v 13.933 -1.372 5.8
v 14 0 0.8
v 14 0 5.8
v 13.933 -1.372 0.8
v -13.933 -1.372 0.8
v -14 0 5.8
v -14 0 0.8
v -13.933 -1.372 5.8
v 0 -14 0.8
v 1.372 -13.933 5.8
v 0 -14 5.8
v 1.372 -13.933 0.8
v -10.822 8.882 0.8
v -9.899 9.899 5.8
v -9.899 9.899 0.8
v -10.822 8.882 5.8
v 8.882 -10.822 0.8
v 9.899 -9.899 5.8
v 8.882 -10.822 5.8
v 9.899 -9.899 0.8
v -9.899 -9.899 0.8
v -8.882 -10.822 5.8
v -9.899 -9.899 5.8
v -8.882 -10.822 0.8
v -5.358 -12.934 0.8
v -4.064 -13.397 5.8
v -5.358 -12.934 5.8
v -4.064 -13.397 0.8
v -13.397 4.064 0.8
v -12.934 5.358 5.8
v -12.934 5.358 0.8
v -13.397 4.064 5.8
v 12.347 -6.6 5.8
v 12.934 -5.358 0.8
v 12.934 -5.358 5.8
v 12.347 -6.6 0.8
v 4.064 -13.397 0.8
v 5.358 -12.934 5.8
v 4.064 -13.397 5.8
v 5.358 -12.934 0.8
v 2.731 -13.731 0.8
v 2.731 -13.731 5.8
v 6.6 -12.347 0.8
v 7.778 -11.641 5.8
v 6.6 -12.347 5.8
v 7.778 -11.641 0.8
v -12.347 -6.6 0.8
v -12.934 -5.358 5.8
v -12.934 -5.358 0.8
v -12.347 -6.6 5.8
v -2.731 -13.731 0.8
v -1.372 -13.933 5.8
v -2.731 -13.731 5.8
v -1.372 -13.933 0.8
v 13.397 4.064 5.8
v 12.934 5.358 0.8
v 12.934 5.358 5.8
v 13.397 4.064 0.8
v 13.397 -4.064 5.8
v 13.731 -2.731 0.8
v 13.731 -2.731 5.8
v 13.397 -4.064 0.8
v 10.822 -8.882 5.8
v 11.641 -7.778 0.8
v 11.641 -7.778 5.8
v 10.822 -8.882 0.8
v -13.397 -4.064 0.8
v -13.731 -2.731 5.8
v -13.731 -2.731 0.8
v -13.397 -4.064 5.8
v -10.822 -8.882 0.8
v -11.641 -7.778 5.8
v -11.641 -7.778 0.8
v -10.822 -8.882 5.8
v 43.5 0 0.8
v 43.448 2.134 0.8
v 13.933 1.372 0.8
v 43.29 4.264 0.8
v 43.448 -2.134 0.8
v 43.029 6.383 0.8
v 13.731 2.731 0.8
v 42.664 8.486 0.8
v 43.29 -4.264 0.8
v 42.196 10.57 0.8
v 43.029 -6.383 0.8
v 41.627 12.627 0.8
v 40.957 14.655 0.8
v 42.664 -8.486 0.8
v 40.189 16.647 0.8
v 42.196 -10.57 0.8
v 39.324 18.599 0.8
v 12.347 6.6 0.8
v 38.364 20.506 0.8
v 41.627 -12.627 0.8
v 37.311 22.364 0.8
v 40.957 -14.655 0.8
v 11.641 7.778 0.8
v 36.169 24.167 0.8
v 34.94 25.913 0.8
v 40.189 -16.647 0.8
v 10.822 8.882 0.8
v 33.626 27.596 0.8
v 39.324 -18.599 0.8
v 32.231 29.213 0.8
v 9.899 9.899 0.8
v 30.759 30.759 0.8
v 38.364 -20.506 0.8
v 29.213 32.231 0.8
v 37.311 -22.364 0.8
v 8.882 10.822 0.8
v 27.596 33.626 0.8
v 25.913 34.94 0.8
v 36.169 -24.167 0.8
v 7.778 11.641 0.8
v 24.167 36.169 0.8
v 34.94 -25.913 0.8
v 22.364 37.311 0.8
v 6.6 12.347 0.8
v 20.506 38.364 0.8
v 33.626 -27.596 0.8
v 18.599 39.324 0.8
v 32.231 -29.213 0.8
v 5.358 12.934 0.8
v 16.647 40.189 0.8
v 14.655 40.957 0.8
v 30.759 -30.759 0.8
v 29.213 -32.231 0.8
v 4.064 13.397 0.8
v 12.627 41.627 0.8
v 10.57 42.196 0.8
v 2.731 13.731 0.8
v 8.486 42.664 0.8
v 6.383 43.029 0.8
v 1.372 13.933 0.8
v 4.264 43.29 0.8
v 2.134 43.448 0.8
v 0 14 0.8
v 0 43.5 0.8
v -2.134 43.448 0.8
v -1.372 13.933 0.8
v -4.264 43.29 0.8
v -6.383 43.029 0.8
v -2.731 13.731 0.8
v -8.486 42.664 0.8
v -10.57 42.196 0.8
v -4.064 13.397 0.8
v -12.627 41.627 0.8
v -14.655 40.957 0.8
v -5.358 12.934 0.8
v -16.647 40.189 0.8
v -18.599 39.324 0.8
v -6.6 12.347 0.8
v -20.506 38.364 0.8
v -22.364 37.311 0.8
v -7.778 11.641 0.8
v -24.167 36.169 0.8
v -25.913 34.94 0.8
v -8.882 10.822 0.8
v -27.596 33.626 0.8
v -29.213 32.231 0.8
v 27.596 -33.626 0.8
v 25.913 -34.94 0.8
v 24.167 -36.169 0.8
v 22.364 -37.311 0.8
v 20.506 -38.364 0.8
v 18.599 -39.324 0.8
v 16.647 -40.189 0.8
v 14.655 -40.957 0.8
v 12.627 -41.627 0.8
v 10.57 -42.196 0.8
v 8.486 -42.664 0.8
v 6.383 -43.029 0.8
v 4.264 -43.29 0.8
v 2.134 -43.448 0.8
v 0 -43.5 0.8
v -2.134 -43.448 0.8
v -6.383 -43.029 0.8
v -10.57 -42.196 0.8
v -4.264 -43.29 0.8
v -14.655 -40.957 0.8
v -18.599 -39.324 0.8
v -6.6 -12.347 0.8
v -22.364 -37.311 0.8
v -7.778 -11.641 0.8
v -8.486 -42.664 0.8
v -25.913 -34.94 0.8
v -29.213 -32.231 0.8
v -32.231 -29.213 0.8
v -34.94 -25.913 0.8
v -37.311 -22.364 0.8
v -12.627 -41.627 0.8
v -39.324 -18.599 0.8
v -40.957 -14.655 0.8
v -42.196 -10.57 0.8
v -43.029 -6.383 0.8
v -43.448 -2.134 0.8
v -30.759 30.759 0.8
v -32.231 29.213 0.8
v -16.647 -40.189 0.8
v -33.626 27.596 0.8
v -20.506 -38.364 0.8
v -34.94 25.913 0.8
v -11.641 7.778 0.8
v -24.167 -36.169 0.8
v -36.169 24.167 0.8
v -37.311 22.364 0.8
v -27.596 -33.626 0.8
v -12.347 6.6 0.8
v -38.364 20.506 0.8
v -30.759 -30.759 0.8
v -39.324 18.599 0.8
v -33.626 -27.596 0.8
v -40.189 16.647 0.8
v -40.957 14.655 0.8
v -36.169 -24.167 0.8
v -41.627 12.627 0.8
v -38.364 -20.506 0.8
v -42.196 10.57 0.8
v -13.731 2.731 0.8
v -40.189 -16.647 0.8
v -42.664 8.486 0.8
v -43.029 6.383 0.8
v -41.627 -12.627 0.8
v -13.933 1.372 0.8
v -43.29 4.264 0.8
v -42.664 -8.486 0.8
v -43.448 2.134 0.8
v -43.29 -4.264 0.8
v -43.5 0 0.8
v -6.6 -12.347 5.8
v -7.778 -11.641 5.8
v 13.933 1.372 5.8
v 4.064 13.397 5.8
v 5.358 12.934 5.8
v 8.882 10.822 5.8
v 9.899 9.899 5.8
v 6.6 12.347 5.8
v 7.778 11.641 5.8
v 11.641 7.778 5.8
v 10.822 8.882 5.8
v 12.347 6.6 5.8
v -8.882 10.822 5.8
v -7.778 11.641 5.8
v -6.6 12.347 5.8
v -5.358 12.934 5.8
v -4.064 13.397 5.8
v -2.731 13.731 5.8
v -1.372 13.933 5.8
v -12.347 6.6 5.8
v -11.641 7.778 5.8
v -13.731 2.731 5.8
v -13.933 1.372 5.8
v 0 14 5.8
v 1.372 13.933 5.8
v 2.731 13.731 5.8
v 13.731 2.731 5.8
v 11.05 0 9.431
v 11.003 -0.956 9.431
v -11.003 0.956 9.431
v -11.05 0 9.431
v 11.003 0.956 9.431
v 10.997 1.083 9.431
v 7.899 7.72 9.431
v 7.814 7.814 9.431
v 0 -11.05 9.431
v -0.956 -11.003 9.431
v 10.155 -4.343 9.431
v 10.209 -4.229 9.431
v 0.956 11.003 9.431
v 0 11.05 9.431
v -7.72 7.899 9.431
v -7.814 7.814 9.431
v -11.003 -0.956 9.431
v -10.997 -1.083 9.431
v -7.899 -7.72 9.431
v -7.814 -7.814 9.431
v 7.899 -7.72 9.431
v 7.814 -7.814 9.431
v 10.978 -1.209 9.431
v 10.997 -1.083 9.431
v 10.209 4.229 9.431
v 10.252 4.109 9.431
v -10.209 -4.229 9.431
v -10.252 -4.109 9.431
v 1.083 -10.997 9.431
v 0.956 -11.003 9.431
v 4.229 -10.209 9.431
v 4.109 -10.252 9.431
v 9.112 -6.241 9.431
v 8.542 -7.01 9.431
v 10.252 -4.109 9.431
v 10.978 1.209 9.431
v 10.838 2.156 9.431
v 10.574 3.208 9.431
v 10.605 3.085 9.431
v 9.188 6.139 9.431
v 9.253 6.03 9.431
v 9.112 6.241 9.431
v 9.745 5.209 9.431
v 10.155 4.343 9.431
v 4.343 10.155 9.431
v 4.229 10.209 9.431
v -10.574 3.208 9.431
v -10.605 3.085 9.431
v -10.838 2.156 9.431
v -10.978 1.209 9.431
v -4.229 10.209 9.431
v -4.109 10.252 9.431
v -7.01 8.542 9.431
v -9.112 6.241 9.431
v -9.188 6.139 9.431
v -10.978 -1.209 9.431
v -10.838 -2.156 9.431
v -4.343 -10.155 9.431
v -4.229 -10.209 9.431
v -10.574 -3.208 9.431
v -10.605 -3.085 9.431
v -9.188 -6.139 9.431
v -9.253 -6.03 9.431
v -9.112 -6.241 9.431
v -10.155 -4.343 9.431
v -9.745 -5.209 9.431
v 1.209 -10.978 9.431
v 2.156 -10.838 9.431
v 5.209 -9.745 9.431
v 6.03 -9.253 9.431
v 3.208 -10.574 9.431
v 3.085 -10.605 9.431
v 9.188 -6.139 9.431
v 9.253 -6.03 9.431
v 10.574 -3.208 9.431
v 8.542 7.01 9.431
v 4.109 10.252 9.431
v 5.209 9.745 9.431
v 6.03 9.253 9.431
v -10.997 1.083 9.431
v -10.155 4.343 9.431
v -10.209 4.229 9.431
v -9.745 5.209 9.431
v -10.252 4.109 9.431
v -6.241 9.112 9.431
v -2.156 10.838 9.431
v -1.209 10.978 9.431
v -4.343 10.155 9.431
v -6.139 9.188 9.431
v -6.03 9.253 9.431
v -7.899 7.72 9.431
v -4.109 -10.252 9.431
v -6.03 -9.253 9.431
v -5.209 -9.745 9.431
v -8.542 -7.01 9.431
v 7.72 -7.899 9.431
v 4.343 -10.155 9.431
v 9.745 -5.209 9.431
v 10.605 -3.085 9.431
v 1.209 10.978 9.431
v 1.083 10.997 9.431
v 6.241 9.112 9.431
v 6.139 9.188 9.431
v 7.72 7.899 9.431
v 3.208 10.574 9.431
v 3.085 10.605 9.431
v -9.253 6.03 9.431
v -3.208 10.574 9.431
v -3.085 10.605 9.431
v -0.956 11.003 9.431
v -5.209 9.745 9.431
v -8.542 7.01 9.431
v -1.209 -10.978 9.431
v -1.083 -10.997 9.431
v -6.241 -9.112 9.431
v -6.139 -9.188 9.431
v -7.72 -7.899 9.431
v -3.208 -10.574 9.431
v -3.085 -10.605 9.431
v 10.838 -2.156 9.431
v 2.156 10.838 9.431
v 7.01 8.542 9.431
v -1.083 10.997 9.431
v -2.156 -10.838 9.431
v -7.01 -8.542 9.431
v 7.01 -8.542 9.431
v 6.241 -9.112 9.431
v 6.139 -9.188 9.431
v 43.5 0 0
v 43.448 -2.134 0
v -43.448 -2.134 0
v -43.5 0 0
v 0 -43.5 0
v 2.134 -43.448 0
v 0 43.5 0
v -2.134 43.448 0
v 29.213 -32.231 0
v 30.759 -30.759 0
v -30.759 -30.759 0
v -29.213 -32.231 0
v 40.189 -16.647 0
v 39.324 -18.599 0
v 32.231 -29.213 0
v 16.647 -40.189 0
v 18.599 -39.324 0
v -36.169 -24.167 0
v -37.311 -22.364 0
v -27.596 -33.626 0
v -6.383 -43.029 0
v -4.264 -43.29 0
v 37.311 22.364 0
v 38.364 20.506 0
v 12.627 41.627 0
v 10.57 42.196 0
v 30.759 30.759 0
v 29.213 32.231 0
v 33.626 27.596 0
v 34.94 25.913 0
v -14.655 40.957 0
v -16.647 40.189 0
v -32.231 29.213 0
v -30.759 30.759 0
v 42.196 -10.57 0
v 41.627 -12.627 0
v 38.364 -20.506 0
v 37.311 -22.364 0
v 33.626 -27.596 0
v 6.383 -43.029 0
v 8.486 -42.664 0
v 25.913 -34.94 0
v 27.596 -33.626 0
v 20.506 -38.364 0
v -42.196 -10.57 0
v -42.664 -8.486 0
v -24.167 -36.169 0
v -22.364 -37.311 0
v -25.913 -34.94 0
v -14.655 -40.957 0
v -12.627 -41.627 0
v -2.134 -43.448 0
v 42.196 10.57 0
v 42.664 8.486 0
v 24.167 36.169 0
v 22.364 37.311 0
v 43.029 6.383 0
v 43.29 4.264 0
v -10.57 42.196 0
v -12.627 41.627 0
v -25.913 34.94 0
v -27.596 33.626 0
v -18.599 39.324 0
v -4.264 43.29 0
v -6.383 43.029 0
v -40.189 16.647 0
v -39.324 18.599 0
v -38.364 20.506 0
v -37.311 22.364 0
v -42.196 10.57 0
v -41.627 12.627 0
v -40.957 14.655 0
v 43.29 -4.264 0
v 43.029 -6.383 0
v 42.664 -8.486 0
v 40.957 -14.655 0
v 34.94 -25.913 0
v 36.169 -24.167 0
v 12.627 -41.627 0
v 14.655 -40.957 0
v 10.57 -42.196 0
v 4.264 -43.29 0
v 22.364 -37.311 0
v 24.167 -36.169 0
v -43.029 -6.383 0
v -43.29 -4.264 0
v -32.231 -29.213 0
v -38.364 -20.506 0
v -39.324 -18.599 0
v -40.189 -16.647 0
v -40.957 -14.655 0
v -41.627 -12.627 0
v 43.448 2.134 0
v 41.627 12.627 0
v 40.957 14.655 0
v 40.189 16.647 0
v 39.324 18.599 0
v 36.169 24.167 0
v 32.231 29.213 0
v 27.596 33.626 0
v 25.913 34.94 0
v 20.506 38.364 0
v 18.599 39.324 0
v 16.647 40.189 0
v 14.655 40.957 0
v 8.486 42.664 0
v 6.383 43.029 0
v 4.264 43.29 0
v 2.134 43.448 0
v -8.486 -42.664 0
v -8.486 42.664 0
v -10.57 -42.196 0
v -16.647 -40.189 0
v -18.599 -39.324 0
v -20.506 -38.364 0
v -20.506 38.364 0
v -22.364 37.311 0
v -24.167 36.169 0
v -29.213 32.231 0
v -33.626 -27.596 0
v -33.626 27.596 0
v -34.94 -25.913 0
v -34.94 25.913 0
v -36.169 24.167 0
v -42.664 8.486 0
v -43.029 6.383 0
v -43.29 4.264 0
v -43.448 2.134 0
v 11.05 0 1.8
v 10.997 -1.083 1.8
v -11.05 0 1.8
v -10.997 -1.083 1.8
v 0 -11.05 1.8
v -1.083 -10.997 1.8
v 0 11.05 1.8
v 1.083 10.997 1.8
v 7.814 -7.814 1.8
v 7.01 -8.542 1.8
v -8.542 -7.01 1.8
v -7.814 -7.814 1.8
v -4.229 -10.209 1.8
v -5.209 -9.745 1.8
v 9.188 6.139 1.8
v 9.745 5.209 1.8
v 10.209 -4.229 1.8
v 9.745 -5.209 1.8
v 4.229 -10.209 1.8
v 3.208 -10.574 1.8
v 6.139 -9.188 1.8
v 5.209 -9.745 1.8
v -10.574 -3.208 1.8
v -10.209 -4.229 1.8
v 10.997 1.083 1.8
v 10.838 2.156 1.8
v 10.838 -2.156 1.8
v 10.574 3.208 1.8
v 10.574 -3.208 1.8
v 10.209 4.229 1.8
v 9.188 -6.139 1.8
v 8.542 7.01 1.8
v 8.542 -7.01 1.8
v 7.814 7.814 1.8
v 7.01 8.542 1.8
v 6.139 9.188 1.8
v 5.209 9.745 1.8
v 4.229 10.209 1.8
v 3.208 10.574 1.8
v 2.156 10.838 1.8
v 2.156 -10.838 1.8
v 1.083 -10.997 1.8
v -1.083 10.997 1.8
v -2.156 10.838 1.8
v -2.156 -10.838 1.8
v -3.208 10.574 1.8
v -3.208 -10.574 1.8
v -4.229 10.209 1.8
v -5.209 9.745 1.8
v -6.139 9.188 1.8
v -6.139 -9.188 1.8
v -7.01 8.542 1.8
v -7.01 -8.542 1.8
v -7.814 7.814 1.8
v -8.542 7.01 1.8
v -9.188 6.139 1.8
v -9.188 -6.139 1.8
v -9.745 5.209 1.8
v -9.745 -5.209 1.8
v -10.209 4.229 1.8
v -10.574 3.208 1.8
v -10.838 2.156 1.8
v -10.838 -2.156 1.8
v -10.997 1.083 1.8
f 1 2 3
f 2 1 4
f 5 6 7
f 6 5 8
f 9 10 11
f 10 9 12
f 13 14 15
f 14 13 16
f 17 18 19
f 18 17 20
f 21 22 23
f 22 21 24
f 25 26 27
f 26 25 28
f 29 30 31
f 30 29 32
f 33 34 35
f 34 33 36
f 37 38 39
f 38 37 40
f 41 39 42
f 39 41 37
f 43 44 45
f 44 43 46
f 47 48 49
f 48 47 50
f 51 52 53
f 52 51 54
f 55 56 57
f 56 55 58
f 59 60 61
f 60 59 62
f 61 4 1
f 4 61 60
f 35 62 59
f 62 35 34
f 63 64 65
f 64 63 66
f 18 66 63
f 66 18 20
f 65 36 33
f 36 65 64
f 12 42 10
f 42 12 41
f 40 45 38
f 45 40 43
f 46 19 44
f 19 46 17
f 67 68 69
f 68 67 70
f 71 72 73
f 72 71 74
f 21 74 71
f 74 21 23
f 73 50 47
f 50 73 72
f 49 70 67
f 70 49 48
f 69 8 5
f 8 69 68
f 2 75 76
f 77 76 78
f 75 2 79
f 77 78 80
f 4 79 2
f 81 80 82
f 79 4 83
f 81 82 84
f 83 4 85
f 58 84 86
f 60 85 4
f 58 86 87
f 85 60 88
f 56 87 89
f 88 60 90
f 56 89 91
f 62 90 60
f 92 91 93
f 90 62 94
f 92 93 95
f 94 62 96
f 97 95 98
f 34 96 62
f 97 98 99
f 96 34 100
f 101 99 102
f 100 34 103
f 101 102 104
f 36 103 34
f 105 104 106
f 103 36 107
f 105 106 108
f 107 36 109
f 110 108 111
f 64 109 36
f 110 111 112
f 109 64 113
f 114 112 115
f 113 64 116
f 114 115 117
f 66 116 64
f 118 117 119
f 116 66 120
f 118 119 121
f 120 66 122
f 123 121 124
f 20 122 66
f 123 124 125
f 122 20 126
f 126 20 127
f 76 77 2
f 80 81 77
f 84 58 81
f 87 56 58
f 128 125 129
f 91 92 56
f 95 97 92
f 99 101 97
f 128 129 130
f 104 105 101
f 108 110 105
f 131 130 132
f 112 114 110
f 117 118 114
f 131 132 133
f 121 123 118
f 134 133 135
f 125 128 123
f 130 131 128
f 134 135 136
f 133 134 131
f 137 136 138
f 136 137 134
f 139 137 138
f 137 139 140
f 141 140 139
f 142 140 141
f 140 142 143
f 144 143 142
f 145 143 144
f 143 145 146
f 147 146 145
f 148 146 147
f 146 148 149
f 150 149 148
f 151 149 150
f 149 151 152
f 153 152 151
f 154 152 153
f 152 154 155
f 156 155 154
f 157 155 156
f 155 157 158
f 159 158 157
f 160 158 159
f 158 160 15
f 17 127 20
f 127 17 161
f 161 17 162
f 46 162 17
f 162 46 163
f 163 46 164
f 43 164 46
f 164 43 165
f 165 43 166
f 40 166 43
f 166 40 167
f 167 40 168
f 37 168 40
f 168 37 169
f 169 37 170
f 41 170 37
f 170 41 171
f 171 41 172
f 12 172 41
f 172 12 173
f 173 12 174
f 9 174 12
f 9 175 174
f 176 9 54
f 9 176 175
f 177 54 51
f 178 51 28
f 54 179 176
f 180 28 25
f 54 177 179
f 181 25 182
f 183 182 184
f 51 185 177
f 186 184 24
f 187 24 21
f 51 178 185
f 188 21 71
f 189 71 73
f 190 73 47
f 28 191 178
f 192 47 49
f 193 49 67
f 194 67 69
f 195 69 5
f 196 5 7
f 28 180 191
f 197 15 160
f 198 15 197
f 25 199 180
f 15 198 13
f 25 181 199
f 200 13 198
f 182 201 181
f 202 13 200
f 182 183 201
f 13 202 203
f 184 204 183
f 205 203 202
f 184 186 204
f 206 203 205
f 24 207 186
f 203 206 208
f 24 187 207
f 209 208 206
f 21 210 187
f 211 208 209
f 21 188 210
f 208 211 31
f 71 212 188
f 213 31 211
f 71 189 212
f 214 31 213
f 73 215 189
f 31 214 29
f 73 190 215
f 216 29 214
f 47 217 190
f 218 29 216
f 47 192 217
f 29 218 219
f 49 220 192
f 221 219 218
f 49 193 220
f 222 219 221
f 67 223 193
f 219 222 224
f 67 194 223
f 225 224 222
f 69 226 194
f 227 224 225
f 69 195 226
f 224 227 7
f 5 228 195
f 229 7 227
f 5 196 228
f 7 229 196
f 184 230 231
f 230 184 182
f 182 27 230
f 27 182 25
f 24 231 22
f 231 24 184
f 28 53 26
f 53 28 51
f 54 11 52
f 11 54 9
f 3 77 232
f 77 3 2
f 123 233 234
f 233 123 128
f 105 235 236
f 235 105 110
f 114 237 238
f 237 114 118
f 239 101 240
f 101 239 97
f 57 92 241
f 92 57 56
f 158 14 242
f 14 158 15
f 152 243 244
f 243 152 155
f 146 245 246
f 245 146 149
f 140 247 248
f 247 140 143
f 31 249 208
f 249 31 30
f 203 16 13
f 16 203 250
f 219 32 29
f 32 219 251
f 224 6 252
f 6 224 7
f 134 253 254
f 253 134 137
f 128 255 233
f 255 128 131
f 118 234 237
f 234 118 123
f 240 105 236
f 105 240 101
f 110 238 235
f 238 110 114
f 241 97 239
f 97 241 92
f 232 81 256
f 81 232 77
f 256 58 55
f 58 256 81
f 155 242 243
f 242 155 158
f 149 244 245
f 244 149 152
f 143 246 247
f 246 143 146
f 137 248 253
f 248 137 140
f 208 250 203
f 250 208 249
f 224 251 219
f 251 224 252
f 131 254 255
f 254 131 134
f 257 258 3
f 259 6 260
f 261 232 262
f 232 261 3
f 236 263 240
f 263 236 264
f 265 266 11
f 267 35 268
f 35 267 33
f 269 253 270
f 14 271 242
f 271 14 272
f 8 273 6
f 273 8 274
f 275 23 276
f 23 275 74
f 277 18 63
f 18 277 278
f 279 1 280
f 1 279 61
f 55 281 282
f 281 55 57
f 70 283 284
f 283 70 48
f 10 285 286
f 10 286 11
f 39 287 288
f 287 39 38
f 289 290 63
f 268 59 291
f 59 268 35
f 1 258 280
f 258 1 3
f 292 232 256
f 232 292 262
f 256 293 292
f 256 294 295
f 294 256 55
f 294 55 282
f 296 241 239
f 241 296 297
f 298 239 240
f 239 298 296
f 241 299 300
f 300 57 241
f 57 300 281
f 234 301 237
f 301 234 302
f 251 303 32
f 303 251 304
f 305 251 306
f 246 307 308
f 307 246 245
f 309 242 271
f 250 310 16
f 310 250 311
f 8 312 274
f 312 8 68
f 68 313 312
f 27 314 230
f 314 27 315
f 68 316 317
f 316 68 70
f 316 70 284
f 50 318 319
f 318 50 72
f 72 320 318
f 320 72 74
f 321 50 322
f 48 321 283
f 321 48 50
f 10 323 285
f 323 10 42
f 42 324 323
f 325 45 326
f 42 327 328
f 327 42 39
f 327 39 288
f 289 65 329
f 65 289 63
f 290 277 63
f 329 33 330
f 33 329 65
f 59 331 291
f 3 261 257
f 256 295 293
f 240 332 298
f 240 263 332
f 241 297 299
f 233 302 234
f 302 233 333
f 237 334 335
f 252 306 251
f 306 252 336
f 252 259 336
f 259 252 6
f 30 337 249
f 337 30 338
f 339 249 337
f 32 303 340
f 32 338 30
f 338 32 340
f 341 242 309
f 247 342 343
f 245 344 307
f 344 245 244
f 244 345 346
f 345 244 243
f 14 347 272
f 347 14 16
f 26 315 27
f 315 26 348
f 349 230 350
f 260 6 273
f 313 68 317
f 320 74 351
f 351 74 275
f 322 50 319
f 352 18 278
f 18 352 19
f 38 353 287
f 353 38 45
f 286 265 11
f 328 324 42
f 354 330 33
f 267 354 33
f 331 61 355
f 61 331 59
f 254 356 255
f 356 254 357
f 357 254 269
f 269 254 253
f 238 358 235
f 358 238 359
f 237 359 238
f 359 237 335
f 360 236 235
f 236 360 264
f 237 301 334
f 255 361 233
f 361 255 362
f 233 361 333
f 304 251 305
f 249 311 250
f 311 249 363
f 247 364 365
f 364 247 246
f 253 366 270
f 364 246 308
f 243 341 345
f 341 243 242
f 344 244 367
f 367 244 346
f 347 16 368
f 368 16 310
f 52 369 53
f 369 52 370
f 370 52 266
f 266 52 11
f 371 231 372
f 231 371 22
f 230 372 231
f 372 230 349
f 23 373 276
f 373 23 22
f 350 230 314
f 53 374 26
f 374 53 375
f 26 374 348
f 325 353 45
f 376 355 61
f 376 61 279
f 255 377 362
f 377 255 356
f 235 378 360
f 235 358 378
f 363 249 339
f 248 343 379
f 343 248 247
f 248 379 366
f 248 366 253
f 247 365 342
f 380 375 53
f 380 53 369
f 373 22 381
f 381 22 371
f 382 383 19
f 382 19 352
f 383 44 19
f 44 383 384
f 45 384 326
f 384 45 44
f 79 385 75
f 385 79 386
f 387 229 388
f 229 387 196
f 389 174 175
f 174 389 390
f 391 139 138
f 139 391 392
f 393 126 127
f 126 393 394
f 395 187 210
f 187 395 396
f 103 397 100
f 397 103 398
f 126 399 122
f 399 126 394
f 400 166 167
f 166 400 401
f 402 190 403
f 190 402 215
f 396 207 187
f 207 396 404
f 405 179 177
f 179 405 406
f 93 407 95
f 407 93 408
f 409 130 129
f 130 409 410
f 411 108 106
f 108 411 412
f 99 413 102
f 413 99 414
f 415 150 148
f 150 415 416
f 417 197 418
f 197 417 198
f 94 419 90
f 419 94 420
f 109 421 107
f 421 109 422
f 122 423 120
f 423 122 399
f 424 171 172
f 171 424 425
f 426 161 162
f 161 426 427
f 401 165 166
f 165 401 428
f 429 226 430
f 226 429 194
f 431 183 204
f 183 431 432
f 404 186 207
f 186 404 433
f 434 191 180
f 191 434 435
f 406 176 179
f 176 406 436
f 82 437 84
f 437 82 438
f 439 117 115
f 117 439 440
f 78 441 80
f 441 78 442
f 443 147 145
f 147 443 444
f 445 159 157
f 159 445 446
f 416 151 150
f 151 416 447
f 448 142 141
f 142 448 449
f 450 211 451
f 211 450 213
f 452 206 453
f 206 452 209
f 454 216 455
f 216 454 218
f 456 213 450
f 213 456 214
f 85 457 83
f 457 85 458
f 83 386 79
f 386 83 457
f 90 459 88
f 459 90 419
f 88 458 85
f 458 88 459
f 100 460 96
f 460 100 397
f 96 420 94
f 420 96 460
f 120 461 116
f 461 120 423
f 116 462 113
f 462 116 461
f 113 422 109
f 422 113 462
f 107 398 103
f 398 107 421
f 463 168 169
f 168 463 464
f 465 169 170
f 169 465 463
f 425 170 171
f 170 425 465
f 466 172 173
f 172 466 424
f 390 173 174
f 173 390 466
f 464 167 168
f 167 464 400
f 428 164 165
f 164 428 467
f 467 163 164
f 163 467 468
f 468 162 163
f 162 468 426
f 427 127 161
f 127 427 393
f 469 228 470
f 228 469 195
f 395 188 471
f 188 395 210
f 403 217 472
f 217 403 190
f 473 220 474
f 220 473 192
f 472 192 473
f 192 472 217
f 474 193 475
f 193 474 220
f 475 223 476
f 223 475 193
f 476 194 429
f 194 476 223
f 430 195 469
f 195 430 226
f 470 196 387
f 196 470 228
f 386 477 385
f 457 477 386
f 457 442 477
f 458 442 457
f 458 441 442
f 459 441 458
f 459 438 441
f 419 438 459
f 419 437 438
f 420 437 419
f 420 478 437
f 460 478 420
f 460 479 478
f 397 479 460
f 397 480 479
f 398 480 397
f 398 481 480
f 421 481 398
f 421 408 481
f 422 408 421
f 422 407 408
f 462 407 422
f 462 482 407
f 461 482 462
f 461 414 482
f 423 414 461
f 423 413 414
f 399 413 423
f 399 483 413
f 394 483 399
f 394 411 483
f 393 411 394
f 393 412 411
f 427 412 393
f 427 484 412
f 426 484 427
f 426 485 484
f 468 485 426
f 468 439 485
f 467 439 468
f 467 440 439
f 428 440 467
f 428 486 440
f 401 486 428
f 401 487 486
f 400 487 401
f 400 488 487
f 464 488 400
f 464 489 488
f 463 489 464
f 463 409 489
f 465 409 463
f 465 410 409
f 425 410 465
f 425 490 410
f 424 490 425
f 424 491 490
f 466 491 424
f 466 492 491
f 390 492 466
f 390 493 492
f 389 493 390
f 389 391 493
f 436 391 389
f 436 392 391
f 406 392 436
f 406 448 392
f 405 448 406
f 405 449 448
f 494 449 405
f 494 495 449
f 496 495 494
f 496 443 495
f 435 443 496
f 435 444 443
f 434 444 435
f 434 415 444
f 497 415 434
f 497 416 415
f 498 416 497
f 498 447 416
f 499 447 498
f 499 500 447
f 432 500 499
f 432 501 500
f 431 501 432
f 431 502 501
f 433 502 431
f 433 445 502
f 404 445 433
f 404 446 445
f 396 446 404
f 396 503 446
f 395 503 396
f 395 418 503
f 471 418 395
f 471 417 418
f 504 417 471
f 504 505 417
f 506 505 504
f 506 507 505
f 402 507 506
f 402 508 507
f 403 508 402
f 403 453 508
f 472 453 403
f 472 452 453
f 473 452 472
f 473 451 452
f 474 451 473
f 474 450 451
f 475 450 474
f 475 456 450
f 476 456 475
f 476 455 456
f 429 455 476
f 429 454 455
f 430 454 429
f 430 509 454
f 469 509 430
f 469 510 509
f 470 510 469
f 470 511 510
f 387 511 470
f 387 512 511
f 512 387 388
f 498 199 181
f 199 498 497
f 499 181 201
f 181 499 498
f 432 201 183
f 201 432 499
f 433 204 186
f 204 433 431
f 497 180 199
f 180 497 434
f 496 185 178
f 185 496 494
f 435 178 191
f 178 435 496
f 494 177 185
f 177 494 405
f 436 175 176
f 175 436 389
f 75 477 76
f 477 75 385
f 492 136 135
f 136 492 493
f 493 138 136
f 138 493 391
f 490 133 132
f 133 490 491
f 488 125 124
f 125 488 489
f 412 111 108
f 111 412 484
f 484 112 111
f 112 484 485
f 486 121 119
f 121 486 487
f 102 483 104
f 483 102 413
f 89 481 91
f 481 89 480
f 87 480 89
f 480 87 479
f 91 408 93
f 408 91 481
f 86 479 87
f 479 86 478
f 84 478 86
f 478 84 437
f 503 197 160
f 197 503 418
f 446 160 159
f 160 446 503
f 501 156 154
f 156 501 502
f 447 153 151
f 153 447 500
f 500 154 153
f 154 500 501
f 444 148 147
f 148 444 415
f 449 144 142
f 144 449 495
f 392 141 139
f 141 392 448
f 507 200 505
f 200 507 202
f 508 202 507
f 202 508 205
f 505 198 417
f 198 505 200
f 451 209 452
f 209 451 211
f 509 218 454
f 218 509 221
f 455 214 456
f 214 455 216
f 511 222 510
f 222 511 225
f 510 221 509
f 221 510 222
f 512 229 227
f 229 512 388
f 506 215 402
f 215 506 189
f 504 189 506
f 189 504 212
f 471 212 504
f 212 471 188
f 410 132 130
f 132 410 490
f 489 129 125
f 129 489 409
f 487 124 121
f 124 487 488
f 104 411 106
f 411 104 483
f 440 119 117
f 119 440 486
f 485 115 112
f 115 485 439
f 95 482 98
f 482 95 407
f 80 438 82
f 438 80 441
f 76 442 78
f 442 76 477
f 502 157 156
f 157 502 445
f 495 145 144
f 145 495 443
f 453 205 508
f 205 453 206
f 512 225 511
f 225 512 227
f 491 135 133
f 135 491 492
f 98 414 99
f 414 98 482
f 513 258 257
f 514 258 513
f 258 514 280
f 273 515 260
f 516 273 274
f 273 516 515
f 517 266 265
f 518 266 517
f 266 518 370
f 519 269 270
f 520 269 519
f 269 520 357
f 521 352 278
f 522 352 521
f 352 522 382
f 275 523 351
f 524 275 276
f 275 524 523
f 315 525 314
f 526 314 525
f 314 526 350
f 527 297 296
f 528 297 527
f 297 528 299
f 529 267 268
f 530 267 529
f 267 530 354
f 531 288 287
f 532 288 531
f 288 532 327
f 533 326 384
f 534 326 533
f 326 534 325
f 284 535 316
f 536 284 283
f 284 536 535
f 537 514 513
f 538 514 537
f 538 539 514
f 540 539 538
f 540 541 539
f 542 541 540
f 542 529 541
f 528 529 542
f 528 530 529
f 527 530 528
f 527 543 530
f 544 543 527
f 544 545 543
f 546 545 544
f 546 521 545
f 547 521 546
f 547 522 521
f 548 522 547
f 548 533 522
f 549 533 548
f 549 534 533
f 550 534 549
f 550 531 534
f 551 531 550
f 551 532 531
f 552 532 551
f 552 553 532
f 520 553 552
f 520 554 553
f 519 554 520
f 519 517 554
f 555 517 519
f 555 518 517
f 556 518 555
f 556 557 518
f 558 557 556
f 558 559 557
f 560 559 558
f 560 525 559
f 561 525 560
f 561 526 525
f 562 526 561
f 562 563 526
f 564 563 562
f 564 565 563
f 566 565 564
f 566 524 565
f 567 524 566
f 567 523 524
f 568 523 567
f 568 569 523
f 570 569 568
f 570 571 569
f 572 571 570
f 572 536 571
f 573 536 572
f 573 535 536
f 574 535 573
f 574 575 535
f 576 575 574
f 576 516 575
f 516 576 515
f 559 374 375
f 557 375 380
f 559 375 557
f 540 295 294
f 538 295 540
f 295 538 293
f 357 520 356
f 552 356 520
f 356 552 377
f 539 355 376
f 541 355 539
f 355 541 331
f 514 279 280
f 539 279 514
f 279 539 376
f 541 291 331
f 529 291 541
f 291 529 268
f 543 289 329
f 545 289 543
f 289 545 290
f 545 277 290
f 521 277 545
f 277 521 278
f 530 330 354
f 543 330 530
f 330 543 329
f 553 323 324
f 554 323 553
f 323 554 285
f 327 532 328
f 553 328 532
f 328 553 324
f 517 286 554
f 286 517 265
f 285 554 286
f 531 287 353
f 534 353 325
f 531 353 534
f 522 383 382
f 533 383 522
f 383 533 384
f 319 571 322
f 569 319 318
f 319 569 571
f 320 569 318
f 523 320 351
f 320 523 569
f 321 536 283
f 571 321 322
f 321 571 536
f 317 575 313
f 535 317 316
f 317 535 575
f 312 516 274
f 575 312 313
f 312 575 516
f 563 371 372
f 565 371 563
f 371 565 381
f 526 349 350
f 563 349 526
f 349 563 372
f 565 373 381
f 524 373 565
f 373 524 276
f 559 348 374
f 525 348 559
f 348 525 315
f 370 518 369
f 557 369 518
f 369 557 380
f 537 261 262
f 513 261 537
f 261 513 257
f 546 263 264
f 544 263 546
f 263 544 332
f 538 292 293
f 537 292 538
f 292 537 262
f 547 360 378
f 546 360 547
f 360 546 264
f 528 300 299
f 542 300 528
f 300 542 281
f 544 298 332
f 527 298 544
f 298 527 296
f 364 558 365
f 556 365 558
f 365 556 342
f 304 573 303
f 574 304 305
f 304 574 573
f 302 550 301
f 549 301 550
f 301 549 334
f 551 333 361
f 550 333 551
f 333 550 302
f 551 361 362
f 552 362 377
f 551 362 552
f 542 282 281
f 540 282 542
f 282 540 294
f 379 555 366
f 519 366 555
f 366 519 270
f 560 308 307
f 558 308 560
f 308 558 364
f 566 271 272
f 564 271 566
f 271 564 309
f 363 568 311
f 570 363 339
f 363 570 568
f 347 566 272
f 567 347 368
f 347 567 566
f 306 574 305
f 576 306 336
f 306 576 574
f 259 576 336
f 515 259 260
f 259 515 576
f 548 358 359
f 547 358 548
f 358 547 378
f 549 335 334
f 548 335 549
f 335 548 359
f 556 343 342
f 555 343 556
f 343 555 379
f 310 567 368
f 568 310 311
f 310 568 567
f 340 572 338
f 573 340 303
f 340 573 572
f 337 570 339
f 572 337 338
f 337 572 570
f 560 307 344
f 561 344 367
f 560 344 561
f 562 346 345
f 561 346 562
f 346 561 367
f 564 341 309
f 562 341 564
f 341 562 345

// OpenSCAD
// file: turntable.scad
tolerance = 0.05;

component_tray_dia = 182;
component_tray_height = 8.6;
component_tray_inner_idia = 39.8;
component_tray_inner_odia = 116.6;
component_tray_inner_thk = 2;
component_tray_hole_dia = 29.6;
component_tray_stopper_hole_dia=5;

component_pocket_idia = 121;
component_pocket_odia = 179;
component_pocket_length = 29;
component_pocket_depth = 8.1;
component_pocket_angle = 8;

component_bearing_idia = 25;
component_bearing_odia = 37;
component_bearing_height = 6;

parts_outer_dia = 126;
parts_inner_dia = 90;
parts_border = 3;
parts_hole_dia = 14;
parts_thk = 1.6;
parts_border_thk = 2;
parts_bearing_holder_dia = 28;
parts_bearing_holder_height = 4;
parts_bearing_holder_thk = 3.20;

part_bearing_idia = 8;
part_bearing_odia = 22;
part_bearing_height = 7;

base_height = 17;
base_outer_dia = component_tray_dia + 8;
base_outerloop_odia = component_tray_dia + 4;
base_outerloop_idia = base_outerloop_odia - 46;
base_sector_angle = 45;

cover_something_width = 15;
cover_thk = 3;

base_innerloop_odia = 50;
base_outerloop_thk = 3;
base_innerloop_thk = base_outerloop_thk;

module sector(h, d, a1, a2) {
    if (a2 - a1 > 180) {
        difference() {
            cylinder(h=h, d=d,$fn=256);
            translate([0,0,-0.5]) sector(h+1, d+1, a2-360, a1); 
        }
    } else {
        difference() {
            cylinder(h=h, d=d,$fn=256);
            rotate([0,0,a1]) translate([-d/2, -d/2, -0.5])
                cube([d, d/2, h+1]);
            rotate([0,0,a2]) translate([-d/2, 0, -0.5])
                cube([d, d/2, h+1]);
        }
    }
}    

module base() {
    difference() {
        union() {
            cylinder( d=base_innerloop_odia, h=base_innerloop_thk, $fn=128 );
            for( a=[0:90:360] )
                rotate([0,0,a] )
                    translate([0,base_outerloop_idia/4 + base_innerloop_odia/4,1.1])
                        cube( size=[15,(base_outerloop_idia - base_innerloop_odia)/2 + 4,2.2],center=true );

            difference() {
                cylinder( d=base_outerloop_odia+1, h=base_innerloop_thk, $fn=256 );
                translate([0,0,-1])
                cylinder( d=base_outerloop_idia, h=base_innerloop_thk+2, $fn=256 );
            }

            difference() {
                cylinder( d=base_outer_dia, h=base_height, $fn=256 );
                translate([0,0,base_height-cover_thk])
                   cylinder( d=base_outerloop_odia, h=cover_thk+2, $fn=256 );
                translate([0,0,base_height-cover_thk-4])
                    cylinder( d2=component_tray_dia+1,d1=base_outerloop_odia,h=5,$fn=256 );
                translate([0,0,-1])
                   cylinder( d=base_outerloop_odia, h=base_height-cover_thk-2, $fn=256 );
                for( a=[0:90:360] )
                    rotate([0,0,a] )
                        translate([0,base_outer_dia/4+base_outerloop_odia/4,base_height-cover_thk/2+1])
                        cube( size=[cover_something_width,(base_outer_dia-base_outerloop_odia)/2+4,cover_thk+2],center=true );
            }
            
            cylinder( d=part_bearing_odia+4,h=base_innerloop_thk+7.2-component_bearing_height,$fn=64 );
            cylinder( d=part_bearing_odia-2*tolerance,h=base_innerloop_thk+6.6,$fn=64 );
            cylinder( d=part_bearing_idia+3,h=base_innerloop_thk+15-part_bearing_height,$fn=64 );
            cylinder( d=part_bearing_idia-2*tolerance,h=base_innerloop_thk+13.6,$fn=64 );
        }

        difference() {
            translate([0,0,-1])
            sector( base_height+2,    base_outer_dia+4,(90-base_sector_angle)/2,(90+base_sector_angle)/2);
            translate([0,0,-2])
            sector( base_height+4,    base_outer_dia-10,(90-base_sector_angle)/2-10,(90+base_sector_angle)/2+10);
        }
    }
}

module component_pocket()
{
    hull() {
        difference() {
            translate( [0,(component_pocket_length-component_pocket_odia)/2,component_pocket_depth-4.2] )
                cylinder( d=component_pocket_odia,h=4.2,$fn=256 );
            translate( [0,(-component_pocket_idia-component_pocket_length)/2,component_pocket_depth-5.2] )
                cylinder( d=component_pocket_idia,h=6.2,$fn=256 );
            for( i=[-1,1] ) 
                translate([i*component_pocket_odia/2,-component_pocket_odia/2,0]) 
                    rotate( [0,0,-i*4] )
                        cube( size=[component_pocket_odia, component_pocket_odia*2, component_pocket_depth*2 + 4], center=true );
            
        }
        difference() {
            translate( [0,7,0.5] )
                cube( size=[20,10.7,1],center=true );
            for( i=[-1,1] ) 
                translate([i*component_pocket_odia/2,-component_pocket_odia/2,0]) 
                    rotate( [0,0,-i*3] )
                        cube( size=[component_pocket_odia, component_pocket_odia*2, 2*(component_pocket_depth-4.2 )], center=true );
        }
    }
}

module component_tray()
{
    difference() {
        cylinder( d=component_tray_dia, h=component_tray_height, $fn=256 );
        difference() {
            translate( [0,0,component_tray_inner_thk] )
                cylinder( d=component_tray_inner_odia, h=component_tray_height, $fn=128 );
            cylinder( d=component_tray_inner_idia, h=component_tray_height+component_tray_inner_thk+2, $fn=128 );
        }
        translate( [0,0,-1] )
            cylinder( d=component_tray_hole_dia, h=component_tray_height+2, $fn=64 );
        translate( [0,0,-2] )
            cylinder( d=component_bearing_odia+2*tolerance, h=component_tray_height, $fn=64 );
        translate( [0,70,-1] )
            cylinder( d=component_tray_stopper_hole_dia, h=component_tray_height+2, $fn=32 );
        translate( [0,81.7,-1] )
            cylinder( d=component_tray_stopper_hole_dia, h=component_tray_height+2, $fn=32 );
        for( a=[10:10:350] ) 
            rotate( [0,0,a] )
                translate( [0,(component_pocket_idia+component_pocket_odia)/4,component_tray_inner_thk] )
                    component_pocket();
            
        
    }
}

/*
     part 1 - single parts tray
          2 - two modules maint part
          3 - two modeles bearing part
*/

module parts_tray(hole=1,part=1)
{
    difference() {
        union() {
            if( part != 3 )
                cylinder( d=parts_outer_dia, h=parts_thk+parts_border_thk,$fn=128 );
            else 
                cylinder( d=parts_inner_dia-parts_border, h=parts_thk/2,$fn=128 );
                
            if( part != 2 ) {
                holder_height = parts_bearing_holder_height + ( part == 3 ? parts_border_thk / 2:0);
                translate( [0,0,-holder_height] )
                    cylinder( d=parts_bearing_holder_dia, h=holder_height,$fn=64 );
                translate( [0,0,-holder_height-4] )
                    cylinder( d2=parts_bearing_holder_dia, d1=part_bearing_odia-0.5, h=4,$fn=64 );
            }
        }
        if( part == 2 )
            translate( [0,0,-1] )
                cylinder( d=parts_bearing_holder_dia, h=parts_thk+2,$fn=64 );
            
        difference() {
            translate( [0,0,parts_thk] )
                cylinder( d=parts_outer_dia-parts_border, h=parts_thk+parts_border_thk,$fn=128 );
            translate( [0,0,parts_thk-1] )
                cylinder( d=parts_inner_dia, h=parts_thk+parts_border_thk+2,$fn=128 );
        }
        translate( [0,0,parts_thk - (part!=2 ? 0 : parts_thk/2)] )
            cylinder( d=parts_inner_dia-parts_border, h=parts_thk+parts_border_thk,$fn=128 );
        if( hole ) 
            translate( [0,0,-2] )
                cylinder( d=parts_hole_dia, h=parts_thk+parts_border_thk+4,$fn=128 );

        if( part != 2 ) 
            translate( [0,0,-parts_bearing_holder_height-5-( part == 3 ? parts_border_thk / 2:0)] )
                cylinder( d=part_bearing_odia+2*tolerance, h=5+parts_bearing_holder_height,$fn=64 );

    }
}
// main file
include <turntable.scad>

translate( [0,0,parts_thk/2] )
    rotate([180,0,0])
        parts_tray(0,3);
